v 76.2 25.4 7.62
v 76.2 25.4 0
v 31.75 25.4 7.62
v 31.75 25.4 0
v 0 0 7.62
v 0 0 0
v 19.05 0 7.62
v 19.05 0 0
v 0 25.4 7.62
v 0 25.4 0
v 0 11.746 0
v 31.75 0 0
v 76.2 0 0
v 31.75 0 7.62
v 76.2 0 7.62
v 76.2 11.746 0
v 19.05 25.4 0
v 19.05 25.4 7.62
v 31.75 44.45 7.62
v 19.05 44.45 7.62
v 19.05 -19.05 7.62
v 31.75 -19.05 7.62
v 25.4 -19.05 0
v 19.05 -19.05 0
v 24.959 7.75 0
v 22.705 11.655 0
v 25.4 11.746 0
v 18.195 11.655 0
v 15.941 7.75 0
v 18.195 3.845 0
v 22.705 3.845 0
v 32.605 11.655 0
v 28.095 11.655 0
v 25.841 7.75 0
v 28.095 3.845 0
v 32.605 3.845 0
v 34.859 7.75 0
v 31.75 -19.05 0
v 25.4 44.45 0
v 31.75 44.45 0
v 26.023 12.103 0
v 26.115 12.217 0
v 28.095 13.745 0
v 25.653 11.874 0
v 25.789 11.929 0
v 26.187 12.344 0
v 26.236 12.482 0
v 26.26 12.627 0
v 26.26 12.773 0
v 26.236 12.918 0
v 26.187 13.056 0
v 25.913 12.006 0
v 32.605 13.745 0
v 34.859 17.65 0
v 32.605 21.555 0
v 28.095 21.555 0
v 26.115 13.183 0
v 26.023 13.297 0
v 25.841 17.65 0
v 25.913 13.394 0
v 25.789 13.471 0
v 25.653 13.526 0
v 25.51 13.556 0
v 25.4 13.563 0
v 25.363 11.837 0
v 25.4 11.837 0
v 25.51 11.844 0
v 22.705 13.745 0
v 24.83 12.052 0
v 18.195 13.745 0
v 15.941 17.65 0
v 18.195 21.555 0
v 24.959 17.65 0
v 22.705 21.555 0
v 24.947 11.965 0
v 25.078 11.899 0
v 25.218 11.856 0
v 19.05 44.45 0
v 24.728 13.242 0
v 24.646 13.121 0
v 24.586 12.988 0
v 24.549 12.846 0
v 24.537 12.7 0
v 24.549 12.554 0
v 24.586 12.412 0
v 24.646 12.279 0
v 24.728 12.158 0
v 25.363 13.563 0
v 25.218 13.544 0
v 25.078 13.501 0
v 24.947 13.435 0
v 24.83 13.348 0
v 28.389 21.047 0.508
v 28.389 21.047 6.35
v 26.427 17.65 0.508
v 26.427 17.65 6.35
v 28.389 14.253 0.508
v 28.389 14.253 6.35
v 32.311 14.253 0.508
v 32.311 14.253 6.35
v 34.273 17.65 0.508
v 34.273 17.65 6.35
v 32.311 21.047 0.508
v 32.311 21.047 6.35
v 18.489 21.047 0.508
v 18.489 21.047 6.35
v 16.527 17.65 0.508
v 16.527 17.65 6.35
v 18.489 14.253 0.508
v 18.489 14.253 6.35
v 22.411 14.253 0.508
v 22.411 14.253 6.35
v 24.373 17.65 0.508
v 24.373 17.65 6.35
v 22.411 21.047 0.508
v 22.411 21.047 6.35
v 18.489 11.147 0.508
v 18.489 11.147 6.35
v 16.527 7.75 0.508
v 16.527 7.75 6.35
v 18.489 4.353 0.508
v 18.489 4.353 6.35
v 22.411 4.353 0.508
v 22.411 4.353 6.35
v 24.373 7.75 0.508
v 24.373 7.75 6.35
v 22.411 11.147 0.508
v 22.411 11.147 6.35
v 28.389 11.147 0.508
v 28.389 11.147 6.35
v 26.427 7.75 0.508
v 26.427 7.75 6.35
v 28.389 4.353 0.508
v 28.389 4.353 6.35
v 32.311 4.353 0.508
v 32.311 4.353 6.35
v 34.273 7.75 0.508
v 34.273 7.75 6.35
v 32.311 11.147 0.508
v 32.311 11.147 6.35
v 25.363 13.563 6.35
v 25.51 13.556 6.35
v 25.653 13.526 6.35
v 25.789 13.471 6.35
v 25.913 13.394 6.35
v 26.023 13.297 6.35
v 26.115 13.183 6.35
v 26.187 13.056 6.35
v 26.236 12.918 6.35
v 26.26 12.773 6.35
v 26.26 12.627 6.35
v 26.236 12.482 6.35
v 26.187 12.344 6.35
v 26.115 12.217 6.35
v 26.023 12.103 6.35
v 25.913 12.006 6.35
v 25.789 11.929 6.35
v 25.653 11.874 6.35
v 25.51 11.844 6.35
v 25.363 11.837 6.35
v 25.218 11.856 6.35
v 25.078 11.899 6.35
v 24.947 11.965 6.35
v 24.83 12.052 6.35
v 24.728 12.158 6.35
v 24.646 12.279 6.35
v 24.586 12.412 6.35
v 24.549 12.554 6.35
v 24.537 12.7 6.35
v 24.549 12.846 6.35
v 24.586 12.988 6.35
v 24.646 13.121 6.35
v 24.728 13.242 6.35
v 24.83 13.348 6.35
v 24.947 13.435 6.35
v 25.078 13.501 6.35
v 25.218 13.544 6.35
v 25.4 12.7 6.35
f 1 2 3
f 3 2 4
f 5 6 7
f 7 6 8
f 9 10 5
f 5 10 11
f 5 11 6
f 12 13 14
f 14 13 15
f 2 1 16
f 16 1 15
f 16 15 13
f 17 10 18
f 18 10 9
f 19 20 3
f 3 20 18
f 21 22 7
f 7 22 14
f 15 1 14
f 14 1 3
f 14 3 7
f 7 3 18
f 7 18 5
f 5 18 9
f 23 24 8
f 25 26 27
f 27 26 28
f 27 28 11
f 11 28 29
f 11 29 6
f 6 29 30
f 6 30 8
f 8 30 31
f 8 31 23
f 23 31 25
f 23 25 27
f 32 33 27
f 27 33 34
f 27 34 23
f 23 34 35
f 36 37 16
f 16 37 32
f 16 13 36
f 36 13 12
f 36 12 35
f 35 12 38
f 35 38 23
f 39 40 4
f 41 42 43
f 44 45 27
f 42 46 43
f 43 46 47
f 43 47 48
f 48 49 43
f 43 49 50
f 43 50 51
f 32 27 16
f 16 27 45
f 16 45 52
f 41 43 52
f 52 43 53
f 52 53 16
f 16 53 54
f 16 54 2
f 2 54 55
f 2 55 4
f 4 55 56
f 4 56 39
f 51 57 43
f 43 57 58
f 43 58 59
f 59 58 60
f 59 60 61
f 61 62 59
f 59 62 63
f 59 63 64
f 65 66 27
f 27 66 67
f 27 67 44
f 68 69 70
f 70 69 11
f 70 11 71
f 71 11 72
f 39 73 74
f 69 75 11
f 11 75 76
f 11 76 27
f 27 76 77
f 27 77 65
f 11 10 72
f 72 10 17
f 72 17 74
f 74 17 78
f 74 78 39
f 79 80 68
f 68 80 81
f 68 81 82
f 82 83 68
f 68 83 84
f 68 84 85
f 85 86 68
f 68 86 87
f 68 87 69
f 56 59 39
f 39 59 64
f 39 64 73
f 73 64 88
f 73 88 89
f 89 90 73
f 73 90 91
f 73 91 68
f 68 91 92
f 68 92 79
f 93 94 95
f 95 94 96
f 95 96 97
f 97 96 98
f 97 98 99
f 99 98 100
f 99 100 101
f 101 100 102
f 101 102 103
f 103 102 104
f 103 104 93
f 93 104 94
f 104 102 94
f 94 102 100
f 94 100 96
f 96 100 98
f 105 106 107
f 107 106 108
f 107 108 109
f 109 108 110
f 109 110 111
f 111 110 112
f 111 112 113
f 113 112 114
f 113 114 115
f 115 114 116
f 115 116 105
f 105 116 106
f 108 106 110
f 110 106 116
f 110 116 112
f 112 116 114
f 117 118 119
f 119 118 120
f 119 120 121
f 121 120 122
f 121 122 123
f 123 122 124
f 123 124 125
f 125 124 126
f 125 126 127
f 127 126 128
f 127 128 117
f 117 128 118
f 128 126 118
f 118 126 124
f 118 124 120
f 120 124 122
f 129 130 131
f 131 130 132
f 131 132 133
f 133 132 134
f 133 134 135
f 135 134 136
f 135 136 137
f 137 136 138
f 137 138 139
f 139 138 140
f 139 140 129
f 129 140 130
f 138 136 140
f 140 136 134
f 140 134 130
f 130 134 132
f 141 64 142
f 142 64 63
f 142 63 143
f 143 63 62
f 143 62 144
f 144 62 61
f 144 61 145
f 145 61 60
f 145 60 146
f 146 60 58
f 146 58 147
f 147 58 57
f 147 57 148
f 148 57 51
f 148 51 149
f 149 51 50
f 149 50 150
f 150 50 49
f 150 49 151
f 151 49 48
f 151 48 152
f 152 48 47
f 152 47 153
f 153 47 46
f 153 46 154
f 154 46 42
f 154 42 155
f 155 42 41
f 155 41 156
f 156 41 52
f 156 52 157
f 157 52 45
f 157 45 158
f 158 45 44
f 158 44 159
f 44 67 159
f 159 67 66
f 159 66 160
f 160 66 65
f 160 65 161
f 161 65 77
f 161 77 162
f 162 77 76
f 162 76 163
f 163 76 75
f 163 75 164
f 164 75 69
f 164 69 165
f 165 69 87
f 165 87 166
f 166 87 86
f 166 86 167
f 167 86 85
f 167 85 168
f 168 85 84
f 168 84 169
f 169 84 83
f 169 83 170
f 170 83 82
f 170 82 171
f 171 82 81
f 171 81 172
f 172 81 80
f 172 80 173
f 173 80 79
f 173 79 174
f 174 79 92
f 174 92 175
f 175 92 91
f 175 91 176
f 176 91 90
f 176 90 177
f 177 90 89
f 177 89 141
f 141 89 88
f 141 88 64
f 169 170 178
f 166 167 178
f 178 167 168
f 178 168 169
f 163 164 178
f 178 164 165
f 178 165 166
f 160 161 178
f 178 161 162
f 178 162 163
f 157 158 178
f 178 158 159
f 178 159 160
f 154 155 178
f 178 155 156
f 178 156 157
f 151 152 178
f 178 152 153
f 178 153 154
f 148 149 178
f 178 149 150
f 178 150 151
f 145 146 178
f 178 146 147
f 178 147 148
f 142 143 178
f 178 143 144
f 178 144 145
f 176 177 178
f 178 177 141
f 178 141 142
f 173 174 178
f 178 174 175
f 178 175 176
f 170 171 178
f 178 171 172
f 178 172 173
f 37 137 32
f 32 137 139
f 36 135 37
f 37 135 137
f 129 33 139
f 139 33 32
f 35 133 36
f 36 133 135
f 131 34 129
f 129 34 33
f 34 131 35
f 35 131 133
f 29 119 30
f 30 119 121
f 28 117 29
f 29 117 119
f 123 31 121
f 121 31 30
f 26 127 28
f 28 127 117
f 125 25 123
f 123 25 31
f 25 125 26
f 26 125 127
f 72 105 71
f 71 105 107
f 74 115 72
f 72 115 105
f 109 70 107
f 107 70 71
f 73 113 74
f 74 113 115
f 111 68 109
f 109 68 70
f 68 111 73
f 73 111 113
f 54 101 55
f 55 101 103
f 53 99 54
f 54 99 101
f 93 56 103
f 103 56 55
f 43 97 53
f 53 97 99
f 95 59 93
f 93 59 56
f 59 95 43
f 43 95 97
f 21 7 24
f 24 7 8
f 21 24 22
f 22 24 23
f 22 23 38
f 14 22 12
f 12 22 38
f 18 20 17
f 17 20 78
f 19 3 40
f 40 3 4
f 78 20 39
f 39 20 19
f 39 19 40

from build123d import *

# Parameters (mm, degrees)
SKETCH1_W           = 76.2
SKETCH1_H           = 25.4
BOSS_EXTRUDE1_DEPTH = 7.62
SKETCH2_R           = 0.863384433
CUT_EXTRUDE1_DEPTH  = 6.35
CHAMFER1_SIZE       = 0.508
SKETCH3_W           = 12.7
SKETCH3_H           = 19.05
BOSS_EXTRUDE2_DEPTH = 7.62


with BuildPart() as part:
    # Sketch1 → Boss-Extrude1 (new body)
    with BuildSketch(Plane.XY):
        with Locations((38.1, 12.7)):
            Rectangle(SKETCH1_W, SKETCH1_H)
    extrude(amount=BOSS_EXTRUDE1_DEPTH)

    # Sketch2 → Cut-Extrude1 (cut)
    with BuildSketch(Plane(origin=(0, 0, 0), x_dir=(-1, 0, 0), z_dir=(0, 0, -1))):
        with Locations((-25.4, 12.7)):
            Circle(SKETCH2_R)
        Polygon((-28.388596798, 21.04725), (-32.311403202, 21.04725), (-34.272806404, 17.65), (-32.311403202, 14.25275), (-28.388596798, 14.25275), (-26.427193596, 17.65), align=None)
        Polygon((-18.488596798, 21.04725), (-22.411403202, 21.04725), (-24.372806404, 17.65), (-22.411403202, 14.25275), (-18.488596798, 14.25275), (-16.527193596, 17.65), align=None)
        Polygon((-18.488596798, 11.14725), (-22.411403202, 11.14725), (-24.372806404, 7.75), (-22.411403202, 4.35275), (-18.488596798, 4.35275), (-16.527193596, 7.75), align=None)
        Polygon((-28.388596798, 11.14725), (-32.311403202, 11.14725), (-34.272806404, 7.75), (-32.311403202, 4.35275), (-28.388596798, 4.35275), (-26.427193596, 7.75), align=None)
    extrude(amount=-CUT_EXTRUDE1_DEPTH, mode=Mode.SUBTRACT)

    # Chamfer1
    chamfer1_edges = [part.edges().sort_by_distance(p)[0] for p in [
        (27.407895197, 9.448625, 0),
        (30.35, 11.14725, 0),
        (33.292104803, 9.448625, 0),
        (33.292104803, 6.051375, 0),
        (30.35, 4.35275, 0),
        (27.407895197, 6.051375, 0),
        (17.507895197, 9.448625, 0),
        (20.45, 11.14725, 0),
        (23.392104803, 9.448625, 0),
        (23.392104803, 6.051375, 0),
        (20.45, 4.35275, 0),
        (17.507895197, 6.051375, 0),
        (17.507895197, 19.348625, 0),
        (20.45, 21.04725, 0),
        (23.392104803, 19.348625, 0),
        (23.392104803, 15.951375, 0),
        (20.45, 14.25275, 0),
        (17.507895197, 15.951375, 0),
        (27.407895197, 19.348625, 0),
        (30.35, 21.04725, 0),
        (33.292104803, 19.348625, 0),
        (33.292104803, 15.951375, 0),
        (30.35, 14.25275, 0),
        (27.407895197, 15.951375, 0),
    ]]
    chamfer(chamfer1_edges, length=CHAMFER1_SIZE)

    # Sketch3 → Boss-Extrude2 (add)
    with BuildSketch(Plane(origin=(0, 0, 0), x_dir=(-1, 0, 0), z_dir=(0, 0, -1))):
        with Locations((-25.4, -9.525)):
            Rectangle(SKETCH3_W, SKETCH3_H)
        with Locations((-25.4, 34.925)):
            Rectangle(SKETCH3_W, SKETCH3_H)
    extrude(amount=-BOSS_EXTRUDE2_DEPTH)


solid = part.part
